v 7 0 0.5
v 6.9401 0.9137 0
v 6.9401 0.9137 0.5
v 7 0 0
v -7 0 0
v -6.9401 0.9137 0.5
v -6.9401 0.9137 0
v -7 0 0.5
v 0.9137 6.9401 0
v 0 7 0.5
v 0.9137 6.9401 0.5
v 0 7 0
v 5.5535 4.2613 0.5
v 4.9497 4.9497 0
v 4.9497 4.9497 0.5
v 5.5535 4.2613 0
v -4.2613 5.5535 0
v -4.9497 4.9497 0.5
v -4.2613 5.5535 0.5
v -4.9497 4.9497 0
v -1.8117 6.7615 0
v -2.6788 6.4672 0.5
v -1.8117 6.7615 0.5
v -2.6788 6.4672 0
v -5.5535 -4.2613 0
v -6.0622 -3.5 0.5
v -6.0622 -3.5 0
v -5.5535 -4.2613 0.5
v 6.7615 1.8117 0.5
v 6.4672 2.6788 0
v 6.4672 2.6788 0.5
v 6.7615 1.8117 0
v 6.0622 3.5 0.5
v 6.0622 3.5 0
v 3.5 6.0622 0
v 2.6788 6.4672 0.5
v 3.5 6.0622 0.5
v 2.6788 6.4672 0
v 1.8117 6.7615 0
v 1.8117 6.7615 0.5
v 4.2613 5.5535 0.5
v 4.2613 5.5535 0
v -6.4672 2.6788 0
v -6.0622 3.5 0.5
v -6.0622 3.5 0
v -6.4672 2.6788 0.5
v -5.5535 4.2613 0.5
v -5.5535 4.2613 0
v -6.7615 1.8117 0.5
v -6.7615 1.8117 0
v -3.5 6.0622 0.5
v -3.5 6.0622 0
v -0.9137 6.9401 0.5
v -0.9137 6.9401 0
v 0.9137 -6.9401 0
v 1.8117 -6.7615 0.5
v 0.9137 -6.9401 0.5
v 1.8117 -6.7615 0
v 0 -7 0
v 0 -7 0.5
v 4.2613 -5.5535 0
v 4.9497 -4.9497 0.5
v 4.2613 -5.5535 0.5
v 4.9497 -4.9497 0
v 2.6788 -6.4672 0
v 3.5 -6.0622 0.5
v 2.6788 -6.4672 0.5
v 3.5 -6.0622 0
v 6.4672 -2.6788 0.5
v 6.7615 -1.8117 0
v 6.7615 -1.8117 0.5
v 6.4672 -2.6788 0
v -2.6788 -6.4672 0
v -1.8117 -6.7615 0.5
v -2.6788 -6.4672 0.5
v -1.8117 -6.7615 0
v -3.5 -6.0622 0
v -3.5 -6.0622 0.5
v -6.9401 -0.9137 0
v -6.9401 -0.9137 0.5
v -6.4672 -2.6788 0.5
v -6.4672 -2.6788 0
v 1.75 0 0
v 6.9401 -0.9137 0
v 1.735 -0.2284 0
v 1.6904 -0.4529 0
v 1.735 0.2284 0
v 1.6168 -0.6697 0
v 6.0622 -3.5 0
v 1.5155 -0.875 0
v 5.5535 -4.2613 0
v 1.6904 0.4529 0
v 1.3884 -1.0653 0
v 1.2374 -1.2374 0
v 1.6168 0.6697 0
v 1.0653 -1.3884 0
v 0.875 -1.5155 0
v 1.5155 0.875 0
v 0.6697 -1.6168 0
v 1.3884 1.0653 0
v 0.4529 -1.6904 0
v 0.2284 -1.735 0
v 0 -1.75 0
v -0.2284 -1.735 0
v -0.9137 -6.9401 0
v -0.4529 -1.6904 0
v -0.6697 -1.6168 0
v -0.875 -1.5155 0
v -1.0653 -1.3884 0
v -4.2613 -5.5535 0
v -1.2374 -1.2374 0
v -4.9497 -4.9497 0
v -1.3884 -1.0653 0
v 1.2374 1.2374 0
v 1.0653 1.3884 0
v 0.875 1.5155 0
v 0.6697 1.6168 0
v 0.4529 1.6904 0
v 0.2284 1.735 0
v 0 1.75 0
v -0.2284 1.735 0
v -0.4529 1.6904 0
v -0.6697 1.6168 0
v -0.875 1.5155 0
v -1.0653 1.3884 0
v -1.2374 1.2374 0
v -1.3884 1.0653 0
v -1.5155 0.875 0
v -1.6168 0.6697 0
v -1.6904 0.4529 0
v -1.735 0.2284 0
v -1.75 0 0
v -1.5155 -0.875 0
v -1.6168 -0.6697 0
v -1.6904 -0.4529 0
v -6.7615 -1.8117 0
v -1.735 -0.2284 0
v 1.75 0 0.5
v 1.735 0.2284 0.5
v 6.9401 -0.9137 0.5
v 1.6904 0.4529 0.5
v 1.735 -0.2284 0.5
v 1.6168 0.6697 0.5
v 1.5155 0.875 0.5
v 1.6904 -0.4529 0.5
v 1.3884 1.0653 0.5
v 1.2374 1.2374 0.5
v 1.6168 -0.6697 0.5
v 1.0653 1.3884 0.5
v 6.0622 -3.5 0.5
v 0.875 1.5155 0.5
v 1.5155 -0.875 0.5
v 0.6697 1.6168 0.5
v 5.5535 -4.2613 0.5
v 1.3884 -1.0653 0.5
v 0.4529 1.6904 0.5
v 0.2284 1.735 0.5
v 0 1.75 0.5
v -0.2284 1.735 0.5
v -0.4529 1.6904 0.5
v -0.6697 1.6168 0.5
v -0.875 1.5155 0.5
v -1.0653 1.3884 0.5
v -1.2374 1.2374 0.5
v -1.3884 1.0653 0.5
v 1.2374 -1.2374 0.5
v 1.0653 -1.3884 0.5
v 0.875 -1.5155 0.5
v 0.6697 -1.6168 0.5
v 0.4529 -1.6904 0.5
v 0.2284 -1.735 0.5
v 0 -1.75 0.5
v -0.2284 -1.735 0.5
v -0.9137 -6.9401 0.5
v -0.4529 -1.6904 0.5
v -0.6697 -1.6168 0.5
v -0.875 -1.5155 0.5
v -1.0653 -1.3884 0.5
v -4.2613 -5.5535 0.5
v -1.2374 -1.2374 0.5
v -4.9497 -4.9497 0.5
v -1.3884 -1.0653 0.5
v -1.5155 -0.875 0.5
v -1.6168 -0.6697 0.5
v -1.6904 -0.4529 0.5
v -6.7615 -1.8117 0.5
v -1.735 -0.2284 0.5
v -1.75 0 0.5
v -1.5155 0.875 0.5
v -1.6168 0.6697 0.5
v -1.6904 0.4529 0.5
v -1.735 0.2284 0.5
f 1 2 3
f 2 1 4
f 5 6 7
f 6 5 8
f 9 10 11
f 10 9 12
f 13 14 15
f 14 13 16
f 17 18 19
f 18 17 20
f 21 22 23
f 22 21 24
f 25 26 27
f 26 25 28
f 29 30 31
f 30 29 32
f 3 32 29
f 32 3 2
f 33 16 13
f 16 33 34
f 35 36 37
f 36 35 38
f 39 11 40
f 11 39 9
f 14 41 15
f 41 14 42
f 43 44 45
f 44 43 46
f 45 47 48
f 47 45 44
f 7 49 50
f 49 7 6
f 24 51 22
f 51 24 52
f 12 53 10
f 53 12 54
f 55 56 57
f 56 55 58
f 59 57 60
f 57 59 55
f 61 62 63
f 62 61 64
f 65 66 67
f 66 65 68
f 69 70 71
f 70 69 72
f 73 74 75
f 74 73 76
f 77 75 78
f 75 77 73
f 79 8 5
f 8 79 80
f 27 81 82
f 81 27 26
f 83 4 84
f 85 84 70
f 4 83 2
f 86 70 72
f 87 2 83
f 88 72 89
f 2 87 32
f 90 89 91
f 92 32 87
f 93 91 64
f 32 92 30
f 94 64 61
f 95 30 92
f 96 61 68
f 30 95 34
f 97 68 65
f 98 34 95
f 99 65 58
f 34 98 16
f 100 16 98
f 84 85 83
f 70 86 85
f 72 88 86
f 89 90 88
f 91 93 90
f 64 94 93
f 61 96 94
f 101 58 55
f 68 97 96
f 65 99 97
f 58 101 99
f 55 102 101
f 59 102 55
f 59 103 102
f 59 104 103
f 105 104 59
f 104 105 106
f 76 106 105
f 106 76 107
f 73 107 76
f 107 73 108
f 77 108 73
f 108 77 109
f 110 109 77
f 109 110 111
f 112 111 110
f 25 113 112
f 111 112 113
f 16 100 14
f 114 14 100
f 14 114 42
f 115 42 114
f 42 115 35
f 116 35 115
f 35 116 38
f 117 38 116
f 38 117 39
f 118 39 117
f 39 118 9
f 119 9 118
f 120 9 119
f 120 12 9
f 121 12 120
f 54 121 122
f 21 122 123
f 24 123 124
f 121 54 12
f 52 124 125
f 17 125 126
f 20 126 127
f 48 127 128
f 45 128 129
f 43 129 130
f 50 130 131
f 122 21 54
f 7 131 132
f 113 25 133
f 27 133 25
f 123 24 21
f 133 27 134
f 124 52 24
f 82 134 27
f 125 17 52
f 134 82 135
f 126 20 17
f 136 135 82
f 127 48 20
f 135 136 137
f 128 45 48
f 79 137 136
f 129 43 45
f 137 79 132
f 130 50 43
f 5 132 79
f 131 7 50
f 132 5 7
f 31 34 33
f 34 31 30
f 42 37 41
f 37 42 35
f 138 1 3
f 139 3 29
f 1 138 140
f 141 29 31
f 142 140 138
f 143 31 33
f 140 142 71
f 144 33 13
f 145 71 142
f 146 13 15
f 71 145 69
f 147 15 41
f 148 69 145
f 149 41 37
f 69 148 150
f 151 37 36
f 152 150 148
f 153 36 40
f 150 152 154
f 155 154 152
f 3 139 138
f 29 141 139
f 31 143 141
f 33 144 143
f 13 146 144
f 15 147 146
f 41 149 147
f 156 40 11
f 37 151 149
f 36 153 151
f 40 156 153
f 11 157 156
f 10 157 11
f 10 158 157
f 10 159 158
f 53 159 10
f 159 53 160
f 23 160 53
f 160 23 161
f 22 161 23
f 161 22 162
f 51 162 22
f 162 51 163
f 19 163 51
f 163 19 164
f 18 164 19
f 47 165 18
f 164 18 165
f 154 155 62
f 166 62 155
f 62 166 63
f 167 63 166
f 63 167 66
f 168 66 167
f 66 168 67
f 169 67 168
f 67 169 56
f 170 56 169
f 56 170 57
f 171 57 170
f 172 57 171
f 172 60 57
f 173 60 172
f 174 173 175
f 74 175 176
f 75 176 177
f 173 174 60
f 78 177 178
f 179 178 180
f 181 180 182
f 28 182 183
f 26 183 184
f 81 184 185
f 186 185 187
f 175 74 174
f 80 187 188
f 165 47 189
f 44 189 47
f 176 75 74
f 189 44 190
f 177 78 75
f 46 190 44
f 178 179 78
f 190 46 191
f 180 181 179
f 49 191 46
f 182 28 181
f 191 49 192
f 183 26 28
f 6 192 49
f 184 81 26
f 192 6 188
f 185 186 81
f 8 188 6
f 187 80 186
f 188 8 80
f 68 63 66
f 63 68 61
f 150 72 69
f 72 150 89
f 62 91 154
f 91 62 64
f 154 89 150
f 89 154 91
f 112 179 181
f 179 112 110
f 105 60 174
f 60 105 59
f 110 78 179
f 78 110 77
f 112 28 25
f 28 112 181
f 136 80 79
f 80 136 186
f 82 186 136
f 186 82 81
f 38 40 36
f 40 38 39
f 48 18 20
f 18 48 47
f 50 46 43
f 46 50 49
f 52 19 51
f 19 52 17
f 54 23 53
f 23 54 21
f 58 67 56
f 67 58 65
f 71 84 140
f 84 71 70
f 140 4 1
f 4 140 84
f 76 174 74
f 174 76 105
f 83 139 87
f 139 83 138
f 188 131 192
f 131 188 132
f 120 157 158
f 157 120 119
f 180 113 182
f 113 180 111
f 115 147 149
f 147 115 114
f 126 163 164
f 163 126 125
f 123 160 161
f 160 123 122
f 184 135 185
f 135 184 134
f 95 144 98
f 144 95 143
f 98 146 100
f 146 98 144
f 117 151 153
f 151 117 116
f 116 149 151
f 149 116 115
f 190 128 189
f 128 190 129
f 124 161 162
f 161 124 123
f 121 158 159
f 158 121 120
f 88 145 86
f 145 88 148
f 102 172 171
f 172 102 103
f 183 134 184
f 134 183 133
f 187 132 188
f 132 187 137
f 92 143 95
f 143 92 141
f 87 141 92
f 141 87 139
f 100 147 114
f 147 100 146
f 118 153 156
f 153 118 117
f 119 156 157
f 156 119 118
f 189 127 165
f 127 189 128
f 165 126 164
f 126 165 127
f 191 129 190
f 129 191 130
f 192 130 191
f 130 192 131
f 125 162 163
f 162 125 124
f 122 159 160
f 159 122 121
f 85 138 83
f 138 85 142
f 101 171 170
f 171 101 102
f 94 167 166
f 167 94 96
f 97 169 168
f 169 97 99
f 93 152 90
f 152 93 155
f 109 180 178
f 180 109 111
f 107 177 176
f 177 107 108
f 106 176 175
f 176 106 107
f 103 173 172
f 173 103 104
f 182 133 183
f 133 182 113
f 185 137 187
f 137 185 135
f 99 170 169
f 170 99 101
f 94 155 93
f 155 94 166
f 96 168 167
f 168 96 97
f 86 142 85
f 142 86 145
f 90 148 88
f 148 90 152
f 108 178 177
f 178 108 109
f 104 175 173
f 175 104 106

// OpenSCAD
// Gen-DG — assembly gap shim, h = run_clear (rotor face -> flange); copper is inside the flanges
include <parameters.scad>;
$fn = 48;
difference() {
    cylinder(d=spacer_pad_od, h=gap_spacer_h);
    translate([0, 0, -0.1]) cylinder(d=spacer_pad_id, h=gap_spacer_h + 0.2);
}
